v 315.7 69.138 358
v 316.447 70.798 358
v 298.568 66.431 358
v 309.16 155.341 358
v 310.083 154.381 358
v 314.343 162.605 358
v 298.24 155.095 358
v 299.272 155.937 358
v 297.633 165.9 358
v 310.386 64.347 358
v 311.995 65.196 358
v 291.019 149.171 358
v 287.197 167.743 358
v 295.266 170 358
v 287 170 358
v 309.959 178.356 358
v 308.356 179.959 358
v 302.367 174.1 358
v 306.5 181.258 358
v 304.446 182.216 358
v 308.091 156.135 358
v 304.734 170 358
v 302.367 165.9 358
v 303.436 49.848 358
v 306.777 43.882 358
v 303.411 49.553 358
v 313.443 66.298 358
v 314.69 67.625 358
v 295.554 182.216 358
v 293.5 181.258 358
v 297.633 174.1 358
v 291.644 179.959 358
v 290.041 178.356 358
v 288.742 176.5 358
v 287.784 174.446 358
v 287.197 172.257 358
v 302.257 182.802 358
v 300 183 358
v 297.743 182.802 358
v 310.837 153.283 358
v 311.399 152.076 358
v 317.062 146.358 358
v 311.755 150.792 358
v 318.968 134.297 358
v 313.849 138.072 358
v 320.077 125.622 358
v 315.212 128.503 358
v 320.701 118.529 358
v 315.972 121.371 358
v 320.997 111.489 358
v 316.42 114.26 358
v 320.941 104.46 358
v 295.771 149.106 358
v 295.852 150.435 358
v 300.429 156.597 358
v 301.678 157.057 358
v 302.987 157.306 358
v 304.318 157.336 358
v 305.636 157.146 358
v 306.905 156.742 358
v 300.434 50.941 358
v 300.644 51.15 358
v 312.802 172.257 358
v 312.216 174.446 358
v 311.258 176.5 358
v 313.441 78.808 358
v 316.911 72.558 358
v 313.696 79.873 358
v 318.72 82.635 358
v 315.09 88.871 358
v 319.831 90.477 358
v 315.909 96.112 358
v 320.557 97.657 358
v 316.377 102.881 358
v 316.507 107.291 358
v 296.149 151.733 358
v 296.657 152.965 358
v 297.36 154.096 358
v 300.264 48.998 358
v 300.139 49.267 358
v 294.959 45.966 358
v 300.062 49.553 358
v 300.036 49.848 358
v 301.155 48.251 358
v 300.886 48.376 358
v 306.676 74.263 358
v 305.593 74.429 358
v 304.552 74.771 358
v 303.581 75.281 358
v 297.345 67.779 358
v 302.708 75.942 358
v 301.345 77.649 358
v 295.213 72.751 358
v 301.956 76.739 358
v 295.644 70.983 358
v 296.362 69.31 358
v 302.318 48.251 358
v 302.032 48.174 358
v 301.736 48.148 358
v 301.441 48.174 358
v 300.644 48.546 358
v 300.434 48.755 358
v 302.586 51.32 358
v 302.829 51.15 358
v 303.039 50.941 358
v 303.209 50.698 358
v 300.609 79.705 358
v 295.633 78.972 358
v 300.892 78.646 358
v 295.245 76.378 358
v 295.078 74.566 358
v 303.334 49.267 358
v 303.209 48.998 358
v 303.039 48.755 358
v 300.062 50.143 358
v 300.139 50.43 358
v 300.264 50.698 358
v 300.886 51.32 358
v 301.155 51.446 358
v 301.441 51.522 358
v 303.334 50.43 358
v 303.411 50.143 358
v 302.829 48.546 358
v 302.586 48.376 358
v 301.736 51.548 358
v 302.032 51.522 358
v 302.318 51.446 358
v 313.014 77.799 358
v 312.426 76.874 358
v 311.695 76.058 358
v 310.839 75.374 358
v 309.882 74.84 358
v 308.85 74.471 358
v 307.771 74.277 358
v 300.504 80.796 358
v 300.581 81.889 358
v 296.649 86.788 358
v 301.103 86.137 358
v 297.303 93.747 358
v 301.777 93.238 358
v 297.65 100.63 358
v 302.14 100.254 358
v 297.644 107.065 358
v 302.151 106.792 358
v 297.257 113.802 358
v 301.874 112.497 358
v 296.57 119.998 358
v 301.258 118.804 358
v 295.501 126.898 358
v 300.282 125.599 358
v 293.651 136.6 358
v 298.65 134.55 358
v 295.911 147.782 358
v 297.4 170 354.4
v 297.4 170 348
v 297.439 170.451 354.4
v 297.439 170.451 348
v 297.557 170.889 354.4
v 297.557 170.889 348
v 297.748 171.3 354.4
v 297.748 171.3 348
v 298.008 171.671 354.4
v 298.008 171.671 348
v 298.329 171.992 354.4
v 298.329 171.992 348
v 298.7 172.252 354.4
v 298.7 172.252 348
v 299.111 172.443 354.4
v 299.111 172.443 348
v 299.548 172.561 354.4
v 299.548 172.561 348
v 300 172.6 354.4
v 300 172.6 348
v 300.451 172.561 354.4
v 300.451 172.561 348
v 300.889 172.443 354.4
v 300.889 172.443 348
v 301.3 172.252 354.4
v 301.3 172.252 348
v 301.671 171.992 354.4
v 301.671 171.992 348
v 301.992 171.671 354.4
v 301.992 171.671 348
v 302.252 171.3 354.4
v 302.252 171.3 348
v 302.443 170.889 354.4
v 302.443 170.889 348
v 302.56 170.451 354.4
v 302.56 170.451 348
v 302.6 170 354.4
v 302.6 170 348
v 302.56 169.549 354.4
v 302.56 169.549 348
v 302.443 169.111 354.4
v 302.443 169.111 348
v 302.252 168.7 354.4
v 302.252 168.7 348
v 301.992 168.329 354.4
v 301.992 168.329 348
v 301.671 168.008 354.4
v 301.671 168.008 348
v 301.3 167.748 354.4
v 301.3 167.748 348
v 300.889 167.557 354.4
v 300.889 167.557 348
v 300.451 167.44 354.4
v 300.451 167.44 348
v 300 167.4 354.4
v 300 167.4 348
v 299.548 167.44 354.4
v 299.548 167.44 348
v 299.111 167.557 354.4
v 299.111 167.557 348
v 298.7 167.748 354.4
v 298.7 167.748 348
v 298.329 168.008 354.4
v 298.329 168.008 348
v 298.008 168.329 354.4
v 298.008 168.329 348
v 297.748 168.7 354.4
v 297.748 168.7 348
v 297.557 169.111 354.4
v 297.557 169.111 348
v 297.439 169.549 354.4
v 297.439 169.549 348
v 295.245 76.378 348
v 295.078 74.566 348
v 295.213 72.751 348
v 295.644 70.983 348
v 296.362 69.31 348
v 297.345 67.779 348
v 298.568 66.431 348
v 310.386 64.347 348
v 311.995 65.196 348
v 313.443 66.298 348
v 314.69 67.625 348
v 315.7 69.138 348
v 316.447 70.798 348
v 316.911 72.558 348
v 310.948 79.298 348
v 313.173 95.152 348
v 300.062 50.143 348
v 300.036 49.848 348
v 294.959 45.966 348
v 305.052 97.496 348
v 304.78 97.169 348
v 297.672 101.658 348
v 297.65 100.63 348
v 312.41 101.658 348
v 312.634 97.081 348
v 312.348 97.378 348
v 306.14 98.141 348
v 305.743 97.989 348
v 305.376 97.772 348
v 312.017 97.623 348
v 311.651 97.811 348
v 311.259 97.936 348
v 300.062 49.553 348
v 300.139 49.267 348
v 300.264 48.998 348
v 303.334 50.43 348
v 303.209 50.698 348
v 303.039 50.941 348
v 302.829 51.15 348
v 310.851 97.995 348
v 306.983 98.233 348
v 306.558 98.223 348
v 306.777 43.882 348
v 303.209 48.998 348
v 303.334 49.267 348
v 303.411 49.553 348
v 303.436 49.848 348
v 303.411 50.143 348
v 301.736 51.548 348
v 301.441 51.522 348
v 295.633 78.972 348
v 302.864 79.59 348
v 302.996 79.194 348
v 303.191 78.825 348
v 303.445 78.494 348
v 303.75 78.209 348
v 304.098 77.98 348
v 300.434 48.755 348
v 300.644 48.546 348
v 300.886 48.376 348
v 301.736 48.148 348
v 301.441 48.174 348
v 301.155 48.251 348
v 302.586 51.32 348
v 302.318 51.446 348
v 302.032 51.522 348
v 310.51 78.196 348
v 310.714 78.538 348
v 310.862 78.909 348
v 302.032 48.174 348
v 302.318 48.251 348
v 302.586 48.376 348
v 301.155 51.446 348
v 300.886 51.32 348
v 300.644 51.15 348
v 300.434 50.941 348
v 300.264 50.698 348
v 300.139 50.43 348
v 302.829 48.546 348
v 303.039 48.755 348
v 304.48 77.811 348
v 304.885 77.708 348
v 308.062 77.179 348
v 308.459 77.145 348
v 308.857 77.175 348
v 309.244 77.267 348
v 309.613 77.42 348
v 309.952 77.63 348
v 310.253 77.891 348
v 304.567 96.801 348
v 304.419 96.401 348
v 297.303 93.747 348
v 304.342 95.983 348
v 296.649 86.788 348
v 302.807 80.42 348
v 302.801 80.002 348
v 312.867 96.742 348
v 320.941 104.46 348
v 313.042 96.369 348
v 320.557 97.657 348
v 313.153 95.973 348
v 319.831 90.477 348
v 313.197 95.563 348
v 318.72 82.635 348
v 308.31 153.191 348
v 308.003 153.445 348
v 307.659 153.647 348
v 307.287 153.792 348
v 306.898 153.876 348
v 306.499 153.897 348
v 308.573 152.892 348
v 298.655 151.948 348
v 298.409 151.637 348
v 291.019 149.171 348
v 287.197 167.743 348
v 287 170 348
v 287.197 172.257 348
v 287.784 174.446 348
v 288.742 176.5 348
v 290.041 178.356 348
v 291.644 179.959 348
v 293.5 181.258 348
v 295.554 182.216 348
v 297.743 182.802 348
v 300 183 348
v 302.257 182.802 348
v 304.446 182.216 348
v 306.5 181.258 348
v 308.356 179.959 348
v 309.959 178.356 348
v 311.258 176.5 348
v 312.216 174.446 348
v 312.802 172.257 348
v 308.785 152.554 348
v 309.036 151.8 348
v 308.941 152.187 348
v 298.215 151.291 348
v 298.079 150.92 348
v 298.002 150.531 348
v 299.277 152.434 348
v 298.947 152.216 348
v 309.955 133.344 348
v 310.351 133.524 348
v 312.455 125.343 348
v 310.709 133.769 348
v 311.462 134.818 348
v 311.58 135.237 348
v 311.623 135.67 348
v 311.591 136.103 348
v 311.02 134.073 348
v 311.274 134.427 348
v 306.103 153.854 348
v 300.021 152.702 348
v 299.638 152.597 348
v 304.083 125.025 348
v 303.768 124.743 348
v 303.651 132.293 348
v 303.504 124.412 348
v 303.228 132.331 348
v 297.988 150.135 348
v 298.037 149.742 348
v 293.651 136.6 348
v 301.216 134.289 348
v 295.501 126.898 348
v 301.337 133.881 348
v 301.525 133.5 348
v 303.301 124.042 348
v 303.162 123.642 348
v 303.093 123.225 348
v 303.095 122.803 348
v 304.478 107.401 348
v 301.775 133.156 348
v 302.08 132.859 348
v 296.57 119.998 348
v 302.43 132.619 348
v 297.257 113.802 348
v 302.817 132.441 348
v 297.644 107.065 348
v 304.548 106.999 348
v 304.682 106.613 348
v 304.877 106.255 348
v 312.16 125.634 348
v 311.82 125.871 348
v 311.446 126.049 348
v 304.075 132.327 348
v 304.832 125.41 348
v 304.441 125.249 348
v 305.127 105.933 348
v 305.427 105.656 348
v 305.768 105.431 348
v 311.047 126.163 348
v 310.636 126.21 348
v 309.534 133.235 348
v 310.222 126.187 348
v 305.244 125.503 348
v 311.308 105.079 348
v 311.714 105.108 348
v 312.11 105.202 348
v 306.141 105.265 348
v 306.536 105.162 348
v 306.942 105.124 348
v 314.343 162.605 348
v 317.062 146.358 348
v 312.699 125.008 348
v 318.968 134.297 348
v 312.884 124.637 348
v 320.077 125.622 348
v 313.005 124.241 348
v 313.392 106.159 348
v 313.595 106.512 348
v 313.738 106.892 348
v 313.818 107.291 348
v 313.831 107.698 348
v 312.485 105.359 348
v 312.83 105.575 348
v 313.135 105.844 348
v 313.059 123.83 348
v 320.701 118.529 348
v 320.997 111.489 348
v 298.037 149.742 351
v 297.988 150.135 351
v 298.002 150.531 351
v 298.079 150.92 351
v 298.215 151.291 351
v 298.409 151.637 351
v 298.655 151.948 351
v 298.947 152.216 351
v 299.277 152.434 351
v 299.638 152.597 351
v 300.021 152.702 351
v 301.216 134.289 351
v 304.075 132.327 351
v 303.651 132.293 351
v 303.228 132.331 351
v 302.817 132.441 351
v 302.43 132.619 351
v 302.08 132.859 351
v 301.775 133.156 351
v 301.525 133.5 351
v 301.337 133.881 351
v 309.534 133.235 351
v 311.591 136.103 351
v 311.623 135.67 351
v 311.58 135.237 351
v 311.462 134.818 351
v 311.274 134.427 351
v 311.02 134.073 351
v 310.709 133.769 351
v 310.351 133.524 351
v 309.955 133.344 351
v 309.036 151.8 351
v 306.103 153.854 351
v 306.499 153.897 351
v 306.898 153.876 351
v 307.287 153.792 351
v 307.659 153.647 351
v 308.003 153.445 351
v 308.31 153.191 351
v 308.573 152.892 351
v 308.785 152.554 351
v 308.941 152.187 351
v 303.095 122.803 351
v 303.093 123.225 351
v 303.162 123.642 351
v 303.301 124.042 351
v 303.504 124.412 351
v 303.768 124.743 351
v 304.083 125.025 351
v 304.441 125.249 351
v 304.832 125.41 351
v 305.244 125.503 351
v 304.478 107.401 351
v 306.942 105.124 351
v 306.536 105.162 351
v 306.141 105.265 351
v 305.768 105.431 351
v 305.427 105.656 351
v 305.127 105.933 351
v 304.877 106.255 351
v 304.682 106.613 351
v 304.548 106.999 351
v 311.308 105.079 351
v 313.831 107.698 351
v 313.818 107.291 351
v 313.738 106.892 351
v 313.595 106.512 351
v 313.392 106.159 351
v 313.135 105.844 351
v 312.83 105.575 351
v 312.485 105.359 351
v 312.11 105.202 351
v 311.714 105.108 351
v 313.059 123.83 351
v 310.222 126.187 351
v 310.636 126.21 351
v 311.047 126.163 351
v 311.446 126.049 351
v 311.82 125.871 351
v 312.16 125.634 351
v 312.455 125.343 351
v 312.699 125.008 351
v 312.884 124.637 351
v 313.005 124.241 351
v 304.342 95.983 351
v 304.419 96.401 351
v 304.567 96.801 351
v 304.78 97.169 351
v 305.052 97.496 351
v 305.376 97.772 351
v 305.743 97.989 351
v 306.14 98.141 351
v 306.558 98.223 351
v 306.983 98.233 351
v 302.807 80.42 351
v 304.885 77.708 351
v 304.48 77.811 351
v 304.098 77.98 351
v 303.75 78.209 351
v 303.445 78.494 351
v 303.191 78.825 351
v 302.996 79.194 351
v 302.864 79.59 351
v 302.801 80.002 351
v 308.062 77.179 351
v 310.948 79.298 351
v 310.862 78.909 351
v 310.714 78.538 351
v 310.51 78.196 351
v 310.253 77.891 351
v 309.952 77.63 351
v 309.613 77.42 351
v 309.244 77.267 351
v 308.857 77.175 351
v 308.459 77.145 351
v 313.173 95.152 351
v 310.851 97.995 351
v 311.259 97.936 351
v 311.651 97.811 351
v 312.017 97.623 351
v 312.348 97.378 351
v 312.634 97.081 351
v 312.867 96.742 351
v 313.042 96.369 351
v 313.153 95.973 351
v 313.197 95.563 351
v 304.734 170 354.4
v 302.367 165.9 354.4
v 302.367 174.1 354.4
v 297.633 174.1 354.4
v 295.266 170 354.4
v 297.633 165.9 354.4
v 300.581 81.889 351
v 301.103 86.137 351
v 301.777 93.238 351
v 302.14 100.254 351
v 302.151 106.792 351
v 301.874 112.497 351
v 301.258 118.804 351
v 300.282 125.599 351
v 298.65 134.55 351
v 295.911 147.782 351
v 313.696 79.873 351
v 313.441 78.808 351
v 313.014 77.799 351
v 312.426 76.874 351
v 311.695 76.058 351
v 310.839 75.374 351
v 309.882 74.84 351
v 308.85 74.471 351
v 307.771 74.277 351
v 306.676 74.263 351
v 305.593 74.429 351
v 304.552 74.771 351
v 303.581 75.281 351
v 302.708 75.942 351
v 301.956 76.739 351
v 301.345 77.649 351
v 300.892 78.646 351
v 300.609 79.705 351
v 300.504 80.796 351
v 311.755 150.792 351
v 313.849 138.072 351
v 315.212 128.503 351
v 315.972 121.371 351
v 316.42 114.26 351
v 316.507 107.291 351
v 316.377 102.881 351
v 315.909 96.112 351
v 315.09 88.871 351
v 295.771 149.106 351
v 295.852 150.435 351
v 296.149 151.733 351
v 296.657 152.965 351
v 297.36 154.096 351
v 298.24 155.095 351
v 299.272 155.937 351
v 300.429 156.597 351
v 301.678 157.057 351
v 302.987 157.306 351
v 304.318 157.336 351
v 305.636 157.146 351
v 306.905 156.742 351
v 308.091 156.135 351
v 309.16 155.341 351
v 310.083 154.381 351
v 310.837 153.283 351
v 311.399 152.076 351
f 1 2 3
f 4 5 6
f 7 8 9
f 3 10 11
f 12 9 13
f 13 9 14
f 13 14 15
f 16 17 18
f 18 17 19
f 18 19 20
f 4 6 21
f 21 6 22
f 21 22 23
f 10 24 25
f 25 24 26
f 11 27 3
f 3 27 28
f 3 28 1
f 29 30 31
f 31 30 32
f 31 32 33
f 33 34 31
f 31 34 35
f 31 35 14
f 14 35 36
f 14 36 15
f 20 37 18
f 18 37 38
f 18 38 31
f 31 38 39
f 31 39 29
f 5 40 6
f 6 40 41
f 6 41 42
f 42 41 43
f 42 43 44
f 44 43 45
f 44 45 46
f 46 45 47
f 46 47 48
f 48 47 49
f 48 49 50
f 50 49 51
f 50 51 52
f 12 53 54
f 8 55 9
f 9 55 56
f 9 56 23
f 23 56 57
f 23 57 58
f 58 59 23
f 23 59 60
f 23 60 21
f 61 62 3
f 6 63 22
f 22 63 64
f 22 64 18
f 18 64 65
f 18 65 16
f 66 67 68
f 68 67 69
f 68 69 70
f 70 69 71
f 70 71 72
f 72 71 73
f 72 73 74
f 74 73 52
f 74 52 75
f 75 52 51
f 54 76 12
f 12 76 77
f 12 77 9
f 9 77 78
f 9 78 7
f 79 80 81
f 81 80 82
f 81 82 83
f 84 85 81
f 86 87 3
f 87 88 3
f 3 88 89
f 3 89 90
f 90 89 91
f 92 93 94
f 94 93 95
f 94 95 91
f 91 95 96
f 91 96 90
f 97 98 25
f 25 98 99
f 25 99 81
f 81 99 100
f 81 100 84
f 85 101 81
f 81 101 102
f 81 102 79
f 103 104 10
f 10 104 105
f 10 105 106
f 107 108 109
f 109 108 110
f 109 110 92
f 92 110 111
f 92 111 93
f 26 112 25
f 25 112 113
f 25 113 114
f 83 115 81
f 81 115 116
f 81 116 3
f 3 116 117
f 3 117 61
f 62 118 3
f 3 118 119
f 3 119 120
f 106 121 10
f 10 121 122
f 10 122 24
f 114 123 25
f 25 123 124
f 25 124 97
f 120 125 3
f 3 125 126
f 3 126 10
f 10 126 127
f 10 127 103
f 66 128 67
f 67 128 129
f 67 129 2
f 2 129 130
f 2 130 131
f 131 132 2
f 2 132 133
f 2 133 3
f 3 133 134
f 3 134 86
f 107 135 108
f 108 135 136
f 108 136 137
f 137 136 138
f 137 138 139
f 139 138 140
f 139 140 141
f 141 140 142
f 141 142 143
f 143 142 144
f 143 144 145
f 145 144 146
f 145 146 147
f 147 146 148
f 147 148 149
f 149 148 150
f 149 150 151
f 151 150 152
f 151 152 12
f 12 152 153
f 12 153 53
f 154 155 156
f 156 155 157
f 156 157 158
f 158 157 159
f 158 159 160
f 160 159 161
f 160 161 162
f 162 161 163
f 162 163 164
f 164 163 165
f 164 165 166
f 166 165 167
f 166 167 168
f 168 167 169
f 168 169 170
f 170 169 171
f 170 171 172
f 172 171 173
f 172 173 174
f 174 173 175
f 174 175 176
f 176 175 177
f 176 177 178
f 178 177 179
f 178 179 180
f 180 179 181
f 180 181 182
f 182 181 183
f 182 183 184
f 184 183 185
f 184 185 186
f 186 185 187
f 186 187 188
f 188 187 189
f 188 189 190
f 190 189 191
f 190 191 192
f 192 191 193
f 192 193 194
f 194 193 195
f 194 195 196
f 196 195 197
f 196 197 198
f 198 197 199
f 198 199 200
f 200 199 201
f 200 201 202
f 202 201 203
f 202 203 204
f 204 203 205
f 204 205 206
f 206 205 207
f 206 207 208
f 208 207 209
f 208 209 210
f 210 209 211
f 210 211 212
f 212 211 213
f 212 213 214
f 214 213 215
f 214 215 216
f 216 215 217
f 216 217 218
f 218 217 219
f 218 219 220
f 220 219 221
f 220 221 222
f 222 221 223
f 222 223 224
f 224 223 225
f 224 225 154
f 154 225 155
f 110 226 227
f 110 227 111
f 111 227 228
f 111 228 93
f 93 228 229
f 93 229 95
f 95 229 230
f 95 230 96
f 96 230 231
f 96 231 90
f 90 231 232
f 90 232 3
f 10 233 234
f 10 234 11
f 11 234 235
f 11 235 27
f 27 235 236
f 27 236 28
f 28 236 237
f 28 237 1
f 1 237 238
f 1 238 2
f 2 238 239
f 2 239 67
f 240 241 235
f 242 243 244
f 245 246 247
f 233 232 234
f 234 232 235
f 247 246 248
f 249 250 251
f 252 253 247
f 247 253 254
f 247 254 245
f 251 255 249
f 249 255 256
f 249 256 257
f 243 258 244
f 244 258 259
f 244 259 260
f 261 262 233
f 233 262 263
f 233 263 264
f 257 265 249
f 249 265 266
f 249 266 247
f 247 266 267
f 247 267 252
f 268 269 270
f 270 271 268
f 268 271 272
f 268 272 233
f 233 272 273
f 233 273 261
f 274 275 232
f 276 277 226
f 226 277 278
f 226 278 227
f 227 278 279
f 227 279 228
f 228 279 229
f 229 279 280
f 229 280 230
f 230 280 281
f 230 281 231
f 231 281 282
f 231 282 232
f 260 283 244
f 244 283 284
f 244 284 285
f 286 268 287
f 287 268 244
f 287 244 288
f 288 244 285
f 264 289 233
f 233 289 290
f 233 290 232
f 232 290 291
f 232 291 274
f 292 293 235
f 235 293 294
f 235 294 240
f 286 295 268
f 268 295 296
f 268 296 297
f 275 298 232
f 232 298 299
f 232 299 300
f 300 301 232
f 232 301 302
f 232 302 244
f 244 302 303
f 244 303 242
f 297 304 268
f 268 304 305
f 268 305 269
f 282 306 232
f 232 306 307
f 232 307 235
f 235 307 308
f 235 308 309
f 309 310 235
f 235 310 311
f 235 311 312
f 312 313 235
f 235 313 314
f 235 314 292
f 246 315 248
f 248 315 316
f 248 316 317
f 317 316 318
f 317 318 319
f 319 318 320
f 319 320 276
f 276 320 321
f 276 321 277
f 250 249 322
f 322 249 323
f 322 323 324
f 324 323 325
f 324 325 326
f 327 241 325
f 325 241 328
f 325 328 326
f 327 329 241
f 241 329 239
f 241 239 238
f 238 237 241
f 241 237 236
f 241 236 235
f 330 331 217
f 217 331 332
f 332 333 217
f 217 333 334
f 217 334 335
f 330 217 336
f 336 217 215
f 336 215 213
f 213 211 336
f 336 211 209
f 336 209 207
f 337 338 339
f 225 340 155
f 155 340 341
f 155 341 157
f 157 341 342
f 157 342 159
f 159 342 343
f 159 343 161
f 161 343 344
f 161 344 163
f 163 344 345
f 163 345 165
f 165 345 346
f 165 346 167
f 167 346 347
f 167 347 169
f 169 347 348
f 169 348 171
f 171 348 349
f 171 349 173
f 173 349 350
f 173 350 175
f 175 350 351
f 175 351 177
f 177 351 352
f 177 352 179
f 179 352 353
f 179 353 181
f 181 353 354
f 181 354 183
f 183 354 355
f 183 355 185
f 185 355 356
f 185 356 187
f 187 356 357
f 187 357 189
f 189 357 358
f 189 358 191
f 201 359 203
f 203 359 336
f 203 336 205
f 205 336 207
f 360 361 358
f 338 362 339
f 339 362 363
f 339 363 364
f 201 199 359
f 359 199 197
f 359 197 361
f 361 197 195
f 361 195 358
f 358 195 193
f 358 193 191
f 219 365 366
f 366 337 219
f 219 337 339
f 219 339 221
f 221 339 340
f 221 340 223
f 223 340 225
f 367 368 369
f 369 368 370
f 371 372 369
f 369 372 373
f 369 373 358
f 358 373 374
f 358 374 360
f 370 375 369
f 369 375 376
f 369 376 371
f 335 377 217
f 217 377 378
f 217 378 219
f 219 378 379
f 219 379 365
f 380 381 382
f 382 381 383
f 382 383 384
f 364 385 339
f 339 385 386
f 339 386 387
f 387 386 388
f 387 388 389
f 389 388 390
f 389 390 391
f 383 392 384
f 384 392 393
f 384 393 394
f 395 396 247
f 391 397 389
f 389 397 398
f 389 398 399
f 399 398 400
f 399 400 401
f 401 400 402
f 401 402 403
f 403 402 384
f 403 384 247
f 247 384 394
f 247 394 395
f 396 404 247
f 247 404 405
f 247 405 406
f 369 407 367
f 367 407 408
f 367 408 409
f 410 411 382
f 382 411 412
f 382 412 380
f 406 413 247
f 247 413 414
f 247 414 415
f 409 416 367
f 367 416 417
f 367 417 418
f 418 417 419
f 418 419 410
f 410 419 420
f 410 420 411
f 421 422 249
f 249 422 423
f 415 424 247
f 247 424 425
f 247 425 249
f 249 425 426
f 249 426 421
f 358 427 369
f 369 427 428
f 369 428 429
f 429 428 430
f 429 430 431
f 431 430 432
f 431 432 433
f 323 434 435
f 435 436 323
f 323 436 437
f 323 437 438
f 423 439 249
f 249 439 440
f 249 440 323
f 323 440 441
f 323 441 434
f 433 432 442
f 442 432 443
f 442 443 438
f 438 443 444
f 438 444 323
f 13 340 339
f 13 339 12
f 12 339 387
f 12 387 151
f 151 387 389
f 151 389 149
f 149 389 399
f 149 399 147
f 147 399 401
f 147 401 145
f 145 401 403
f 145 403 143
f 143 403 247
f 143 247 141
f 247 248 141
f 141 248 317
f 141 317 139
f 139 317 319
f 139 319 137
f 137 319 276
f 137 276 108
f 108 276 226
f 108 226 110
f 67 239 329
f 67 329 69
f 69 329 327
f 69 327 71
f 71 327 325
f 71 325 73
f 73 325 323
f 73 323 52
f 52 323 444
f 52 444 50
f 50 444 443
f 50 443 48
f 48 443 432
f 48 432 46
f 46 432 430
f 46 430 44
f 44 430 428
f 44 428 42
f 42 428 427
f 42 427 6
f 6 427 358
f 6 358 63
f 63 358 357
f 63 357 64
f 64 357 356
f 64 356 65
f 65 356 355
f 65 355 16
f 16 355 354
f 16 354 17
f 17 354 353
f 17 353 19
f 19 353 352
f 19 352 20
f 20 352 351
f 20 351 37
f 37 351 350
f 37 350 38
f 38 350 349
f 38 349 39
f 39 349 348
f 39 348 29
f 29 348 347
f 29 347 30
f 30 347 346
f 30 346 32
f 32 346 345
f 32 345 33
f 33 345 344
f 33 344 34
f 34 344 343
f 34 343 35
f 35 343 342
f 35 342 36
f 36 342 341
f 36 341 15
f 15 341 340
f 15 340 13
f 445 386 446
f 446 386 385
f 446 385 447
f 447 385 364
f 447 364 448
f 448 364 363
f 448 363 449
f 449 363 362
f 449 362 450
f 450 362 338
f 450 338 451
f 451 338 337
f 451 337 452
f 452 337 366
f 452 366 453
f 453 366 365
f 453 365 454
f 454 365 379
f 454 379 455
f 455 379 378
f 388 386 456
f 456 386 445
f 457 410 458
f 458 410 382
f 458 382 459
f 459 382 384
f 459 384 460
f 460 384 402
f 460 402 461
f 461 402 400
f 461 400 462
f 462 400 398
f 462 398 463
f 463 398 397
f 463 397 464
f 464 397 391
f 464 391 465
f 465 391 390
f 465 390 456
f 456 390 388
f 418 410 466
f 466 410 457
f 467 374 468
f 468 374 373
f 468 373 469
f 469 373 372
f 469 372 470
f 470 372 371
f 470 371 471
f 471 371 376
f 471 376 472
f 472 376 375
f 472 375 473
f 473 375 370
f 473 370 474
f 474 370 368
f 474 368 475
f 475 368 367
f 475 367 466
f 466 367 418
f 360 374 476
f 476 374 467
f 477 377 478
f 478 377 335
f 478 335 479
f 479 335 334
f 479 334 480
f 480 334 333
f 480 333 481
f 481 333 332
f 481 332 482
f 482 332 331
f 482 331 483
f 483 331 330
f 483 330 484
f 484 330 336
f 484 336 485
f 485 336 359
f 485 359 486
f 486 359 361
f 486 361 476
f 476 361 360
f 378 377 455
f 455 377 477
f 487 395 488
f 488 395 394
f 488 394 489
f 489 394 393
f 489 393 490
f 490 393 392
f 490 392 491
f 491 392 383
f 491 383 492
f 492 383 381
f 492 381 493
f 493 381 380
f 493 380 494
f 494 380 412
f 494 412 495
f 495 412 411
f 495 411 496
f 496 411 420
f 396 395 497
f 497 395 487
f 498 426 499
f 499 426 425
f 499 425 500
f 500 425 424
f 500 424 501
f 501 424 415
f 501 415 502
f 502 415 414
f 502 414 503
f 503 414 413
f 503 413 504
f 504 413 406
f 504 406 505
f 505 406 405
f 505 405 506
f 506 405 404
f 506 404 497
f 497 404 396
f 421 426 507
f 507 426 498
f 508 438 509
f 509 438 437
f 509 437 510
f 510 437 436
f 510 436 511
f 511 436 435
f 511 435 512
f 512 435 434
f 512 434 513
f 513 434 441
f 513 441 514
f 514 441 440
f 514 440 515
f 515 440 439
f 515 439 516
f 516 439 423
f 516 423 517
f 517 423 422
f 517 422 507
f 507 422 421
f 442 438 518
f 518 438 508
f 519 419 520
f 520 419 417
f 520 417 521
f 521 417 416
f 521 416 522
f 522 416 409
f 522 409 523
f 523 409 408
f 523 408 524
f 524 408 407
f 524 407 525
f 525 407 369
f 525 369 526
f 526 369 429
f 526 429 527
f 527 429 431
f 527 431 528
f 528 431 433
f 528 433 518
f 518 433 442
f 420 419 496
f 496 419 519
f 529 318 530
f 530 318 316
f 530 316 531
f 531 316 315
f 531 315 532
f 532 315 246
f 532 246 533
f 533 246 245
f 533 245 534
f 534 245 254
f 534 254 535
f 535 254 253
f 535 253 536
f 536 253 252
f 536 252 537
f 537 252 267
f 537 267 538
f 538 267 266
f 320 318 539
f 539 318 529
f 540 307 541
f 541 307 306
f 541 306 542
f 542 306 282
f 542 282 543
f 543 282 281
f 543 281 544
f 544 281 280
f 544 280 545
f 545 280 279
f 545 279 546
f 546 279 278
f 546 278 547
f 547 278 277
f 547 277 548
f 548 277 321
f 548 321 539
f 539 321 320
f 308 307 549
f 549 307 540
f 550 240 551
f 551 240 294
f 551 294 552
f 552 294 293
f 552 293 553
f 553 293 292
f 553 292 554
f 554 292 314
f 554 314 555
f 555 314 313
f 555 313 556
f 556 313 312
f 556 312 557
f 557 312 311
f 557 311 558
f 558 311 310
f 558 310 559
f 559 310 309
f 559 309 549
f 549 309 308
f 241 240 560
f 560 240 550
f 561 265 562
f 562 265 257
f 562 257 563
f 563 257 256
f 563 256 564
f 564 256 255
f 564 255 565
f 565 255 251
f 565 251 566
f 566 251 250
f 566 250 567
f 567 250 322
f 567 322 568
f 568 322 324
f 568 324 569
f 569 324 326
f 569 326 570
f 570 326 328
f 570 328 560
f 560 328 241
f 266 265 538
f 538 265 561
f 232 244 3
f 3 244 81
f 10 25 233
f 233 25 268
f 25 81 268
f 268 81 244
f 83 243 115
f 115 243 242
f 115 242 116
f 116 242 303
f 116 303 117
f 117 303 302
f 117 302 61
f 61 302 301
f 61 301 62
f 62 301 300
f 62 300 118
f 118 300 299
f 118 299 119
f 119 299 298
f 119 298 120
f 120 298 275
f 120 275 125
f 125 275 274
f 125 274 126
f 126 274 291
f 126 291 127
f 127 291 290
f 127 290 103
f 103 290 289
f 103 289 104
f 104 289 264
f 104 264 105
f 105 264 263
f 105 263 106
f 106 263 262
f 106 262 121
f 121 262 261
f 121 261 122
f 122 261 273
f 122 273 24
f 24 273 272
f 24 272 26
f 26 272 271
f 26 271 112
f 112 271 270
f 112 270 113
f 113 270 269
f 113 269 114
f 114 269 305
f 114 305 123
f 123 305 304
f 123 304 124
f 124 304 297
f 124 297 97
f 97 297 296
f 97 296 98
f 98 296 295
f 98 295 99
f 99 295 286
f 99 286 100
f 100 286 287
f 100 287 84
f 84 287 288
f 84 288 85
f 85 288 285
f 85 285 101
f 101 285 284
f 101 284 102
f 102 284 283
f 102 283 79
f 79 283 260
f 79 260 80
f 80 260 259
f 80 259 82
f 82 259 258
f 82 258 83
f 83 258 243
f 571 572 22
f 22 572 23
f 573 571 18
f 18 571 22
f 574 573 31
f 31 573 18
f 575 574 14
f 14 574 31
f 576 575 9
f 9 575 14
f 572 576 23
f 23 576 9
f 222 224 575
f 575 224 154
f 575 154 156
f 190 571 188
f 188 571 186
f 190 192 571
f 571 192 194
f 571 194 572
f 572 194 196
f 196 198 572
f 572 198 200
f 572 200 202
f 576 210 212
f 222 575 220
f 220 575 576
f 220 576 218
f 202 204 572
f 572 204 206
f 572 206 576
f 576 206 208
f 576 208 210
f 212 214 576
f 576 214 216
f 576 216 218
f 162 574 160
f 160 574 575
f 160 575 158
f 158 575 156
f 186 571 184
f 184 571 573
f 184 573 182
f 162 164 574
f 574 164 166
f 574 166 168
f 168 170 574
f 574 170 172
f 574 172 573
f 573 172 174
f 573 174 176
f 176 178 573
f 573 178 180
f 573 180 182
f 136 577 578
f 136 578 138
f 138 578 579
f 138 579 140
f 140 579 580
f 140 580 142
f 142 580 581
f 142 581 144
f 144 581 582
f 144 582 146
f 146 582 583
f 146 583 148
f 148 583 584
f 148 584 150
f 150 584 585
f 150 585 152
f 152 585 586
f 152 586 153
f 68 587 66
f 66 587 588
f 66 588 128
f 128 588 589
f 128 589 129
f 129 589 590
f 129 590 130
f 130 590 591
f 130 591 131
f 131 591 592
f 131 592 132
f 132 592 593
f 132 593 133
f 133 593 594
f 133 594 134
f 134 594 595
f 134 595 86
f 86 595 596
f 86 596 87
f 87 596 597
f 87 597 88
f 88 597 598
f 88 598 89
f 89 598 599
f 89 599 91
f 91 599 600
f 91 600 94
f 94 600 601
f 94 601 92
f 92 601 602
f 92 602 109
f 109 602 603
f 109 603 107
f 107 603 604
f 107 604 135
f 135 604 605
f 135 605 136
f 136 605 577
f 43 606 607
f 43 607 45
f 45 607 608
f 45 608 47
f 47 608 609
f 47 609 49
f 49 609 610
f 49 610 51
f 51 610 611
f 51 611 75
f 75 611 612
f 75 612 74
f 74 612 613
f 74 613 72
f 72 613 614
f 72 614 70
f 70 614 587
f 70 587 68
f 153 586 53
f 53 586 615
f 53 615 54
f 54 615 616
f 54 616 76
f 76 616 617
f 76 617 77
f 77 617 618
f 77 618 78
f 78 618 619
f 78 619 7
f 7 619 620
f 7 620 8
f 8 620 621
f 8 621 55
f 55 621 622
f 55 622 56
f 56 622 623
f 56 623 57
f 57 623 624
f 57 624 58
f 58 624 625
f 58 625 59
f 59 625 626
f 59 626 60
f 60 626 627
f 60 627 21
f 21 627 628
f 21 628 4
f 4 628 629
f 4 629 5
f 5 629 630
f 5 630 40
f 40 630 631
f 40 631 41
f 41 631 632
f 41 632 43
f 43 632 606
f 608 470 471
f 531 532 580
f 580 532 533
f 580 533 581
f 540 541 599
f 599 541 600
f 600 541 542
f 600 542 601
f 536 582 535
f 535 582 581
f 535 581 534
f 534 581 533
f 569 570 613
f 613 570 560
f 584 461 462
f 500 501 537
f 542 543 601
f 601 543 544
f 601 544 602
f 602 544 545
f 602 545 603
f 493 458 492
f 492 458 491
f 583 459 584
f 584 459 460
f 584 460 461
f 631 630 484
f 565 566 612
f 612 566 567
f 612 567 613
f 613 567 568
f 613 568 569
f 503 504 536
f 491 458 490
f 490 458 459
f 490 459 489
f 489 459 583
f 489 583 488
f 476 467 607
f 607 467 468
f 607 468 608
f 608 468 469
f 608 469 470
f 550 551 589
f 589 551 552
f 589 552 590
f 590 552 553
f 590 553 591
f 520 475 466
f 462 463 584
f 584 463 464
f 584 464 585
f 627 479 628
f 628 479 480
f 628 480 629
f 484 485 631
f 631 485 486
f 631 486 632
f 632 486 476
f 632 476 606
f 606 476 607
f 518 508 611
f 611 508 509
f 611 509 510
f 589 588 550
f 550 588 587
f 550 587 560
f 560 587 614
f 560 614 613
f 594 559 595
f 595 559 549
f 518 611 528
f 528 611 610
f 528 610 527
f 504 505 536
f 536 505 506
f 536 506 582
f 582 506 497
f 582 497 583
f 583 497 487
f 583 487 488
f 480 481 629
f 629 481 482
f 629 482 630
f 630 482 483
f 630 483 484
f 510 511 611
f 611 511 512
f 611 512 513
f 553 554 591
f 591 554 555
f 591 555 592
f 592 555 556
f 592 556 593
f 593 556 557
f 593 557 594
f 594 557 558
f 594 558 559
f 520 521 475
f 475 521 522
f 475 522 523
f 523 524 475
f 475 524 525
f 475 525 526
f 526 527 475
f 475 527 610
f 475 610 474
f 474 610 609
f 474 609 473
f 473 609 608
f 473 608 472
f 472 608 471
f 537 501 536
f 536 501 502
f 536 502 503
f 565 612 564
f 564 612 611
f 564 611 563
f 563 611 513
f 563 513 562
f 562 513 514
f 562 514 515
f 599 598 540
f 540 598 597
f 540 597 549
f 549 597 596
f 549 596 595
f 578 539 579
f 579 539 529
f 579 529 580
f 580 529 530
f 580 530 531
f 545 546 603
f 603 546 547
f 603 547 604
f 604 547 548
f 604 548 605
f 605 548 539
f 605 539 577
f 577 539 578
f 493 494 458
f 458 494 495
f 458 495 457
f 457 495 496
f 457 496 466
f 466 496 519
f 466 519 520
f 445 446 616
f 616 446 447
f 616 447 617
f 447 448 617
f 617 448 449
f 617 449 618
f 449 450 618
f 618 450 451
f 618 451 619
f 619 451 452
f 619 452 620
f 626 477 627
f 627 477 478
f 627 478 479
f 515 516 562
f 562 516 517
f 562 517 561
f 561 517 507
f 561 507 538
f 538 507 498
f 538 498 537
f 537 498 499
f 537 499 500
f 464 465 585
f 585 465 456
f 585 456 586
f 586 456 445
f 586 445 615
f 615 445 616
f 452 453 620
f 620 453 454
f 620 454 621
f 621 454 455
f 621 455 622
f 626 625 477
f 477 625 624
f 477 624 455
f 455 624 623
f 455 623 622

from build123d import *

# Parameters (mm, degrees)
SKETCH1_R           = 2.6
BOSS_EXTRUDE1_DEPTH = 10
SKETCH2_R           = 1.7
BOSS_EXTRUDE2_DEPTH = 10
CUT_EXTRUDE1_DEPTH  = 3.61
CUT_EXTRUDE2_DEPTH  = 7.01


with BuildPart() as part:
    # Sketch1 → Boss-Extrude1 (new body)
    with BuildSketch(Plane.XY.offset(348)):
        with BuildLine():
            ThreePointArc((295.244800935, 76.37840131), (304.167556264, 63.635386072), (316.910571501, 72.558141401))
            add(Edge.make_bspline(
                [(316.910571501, 72.558141401), (317.993077182, 78.060080938), (319.436691833, 86.419493367), (320.644104939, 97.746663028), (321.086020795, 106.446056452), (320.974468629, 115.188631518), (320.331239752, 123.834659135), (319.294204188, 132.281931409), (318.037316746, 140.511779077), (316.695476199, 148.568110679), (314.90656957, 159.124453911), (313.612933772, 167.009808068), (312.802500789, 172.25742631)],
                knots=[0, 0, 0, 0, 0.167265195, 0.252809118, 0.339604775, 0.426899602, 0.513395067, 0.598049027, 0.680668932, 0.761679683, 0.84163696, 1, 1, 1, 1], degree=3))
            ThreePointArc((312.802500789, 172.25742631), (297.74257369, 182.802500789), (287.197499211, 167.74257369))
            add(Edge.make_bspline(
                [(287.197499211, 167.74257369), (288.245214147, 162.428752521), (289.885822364, 154.498518205), (292.118297352, 143.988320878), (293.742742512, 136.235372867), (295.2339085, 128.615976653), (296.473470386, 121.13730858), (297.336811691, 113.762401768), (297.738284398, 106.419106942), (297.668798337, 99.033764721), (297.014800417, 88.987730843), (296.022440082, 81.435185794), (295.244800935, 76.37840131)],
                knots=[0, 0, 0, 0, 0.175721332, 0.26273732, 0.348606728, 0.432722922, 0.514619289, 0.594500878, 0.673506544, 0.753057452, 0.833978021, 1, 1, 1, 1], degree=3))
        make_face()
        with Locations((300, 170)):
            Circle(SKETCH1_R, mode=Mode.SUBTRACT)
        with BuildLine():
            Line((298.037273547, 149.741721474), (301.215790437, 134.288941883))
            ThreePointArc((301.215790437, 134.288941883), (302.249879541, 132.731371076), (304.075121449, 132.326575973))
            Line((304.075121449, 132.326575973), (309.533784891, 133.235441013))
            ThreePointArc((309.533784891, 133.235441013), (311.154644108, 134.244376396), (311.590714405, 136.103133481))
            Line((311.590714405, 136.103133481), (309.035810829, 151.799472168))
            ThreePointArc((309.035810829, 151.799472168), (308.002694304, 153.44538336), (306.102883834, 153.854129723))
            Line((306.102883834, 153.854129723), (300.020607078, 152.701705588))
            ThreePointArc((300.020607078, 152.701705588), (298.409129896, 151.6370167), (298.037273547, 149.741721474))
        make_face(mode=Mode.SUBTRACT)
        with BuildLine():
            Line((303.095062376, 122.802641733), (304.478179716, 107.400584875))
            ThreePointArc((304.478179716, 107.400584875), (305.271665108, 105.787912405), (306.941989082, 105.124324138))
            Line((306.941989082, 105.124324138), (311.308057506, 105.078615953))
            ThreePointArc((311.308057506, 105.078615953), (313.134691512, 105.844024349), (313.831371675, 107.697960312))
            Line((313.831371675, 107.697960312), (313.059492575, 123.830124112))
            ThreePointArc((313.059492575, 123.830124112), (312.159795141, 125.633704646), (310.221794191, 126.187338583))
            Line((310.221794191, 126.187338583), (305.244487527, 125.502939826))
            ThreePointArc((305.244487527, 125.502939826), (303.629055674, 124.583200895), (303.095062376, 122.802641733))
        make_face(mode=Mode.SUBTRACT)
        with BuildLine():
            Line((304.341810749, 95.98294616), (302.807326902, 80.41966071))
            ThreePointArc((302.807326902, 80.41966071), (303.310735667, 78.653947907), (304.884570682, 77.708323546))
            Line((304.884570682, 77.708323546), (308.061893299, 77.17917356))
            ThreePointArc((308.061893299, 77.17917356), (309.951832836, 77.629811361), (310.948319998, 79.297731989))
            Line((310.948319998, 79.297731989), (313.173535223, 95.152129395))
            ThreePointArc((313.173535223, 95.152129395), (312.633934067, 97.081184589), (310.85135927, 97.994886096))
            Line((310.85135927, 97.994886096), (306.983305274, 98.232924126))
            ThreePointArc((306.983305274, 98.232924126), (305.208657773, 97.640818137), (304.341810749, 95.98294616))
        make_face(mode=Mode.SUBTRACT)
    extrude(amount=BOSS_EXTRUDE1_DEPTH)

    # Sketch2 → Boss-Extrude2 (add)
    with BuildSketch(Plane.XY.offset(348)):
        Polygon((294.95939437, 45.965927831), (306.777087406, 43.882149699), (311.465588203, 70.47195903), (299.647895167, 72.555737162), align=None)
        with Locations((301.736481777, 49.84807753)):
            Circle(SKETCH2_R, mode=Mode.SUBTRACT)
    extrude(amount=BOSS_EXTRUDE2_DEPTH)

    # Sketch3 → Cut-Extrude1 (cut)
    with BuildSketch(Plane.XY.offset(354.4)):
        Polygon((304.734272207, 170), (302.367136104, 174.1), (297.632863896, 174.1), (295.265727793, 170), (297.632863896, 165.9), (302.367136104, 165.9), align=None)
    extrude(amount=CUT_EXTRUDE1_DEPTH, mode=Mode.SUBTRACT)

    # Sketch4 → Cut-Extrude2 (cut)
    with BuildSketch(Plane.XY.offset(351)):
        with BuildLine():
            ThreePointArc((300.580931265, 81.888864063), (306.130868326, 74.323372231), (313.696360158, 79.873309293))
            add(Edge.make_bspline(
                [(313.696360158, 79.873309293), (314.375332718, 83.768049726), (315.269853801, 89.655581864), (316.076109947, 97.581166828), (316.452007736, 103.60449348), (316.564187736, 109.663923395), (316.399741723, 115.723723037), (315.97594992, 121.744253087), (315.33821911, 127.695568385), (314.545946492, 133.565929662), (313.36456358, 141.260072259), (312.394961182, 146.988748853), (311.75464163, 150.792263987)],
                knots=[0, 0, 0, 0, 0.166088556, 0.250039022, 0.33458405, 0.419536565, 0.504540949, 0.589152475, 0.673005298, 0.755933527, 0.837970837, 1, 1, 1, 1], degree=3))
            ThreePointArc((311.75464163, 150.792263987), (302.327575287, 157.208623235), (295.911216039, 147.781556891))
            add(Edge.make_bspline(
                [(295.911216039, 147.781556891), (296.697686325, 144.058532846), (297.878134482, 138.498789725), (299.330987648, 131.099349657), (300.305049322, 125.614550146), (301.11991691, 120.165560812), (301.730137241, 114.739277873), (302.103500244, 109.317606169), (302.228444831, 103.882909759), (302.114203921, 98.423103229), (301.672760974, 91.075496307), (301.065579784, 85.565175403), (300.580931265, 81.888864063)],
                knots=[0, 0, 0, 0, 0.171659874, 0.256391336, 0.340162967, 0.422938325, 0.504894902, 0.58642712, 0.668013916, 0.750042635, 0.832709798, 1, 1, 1, 1], degree=3))
        make_face()
    extrude(amount=CUT_EXTRUDE2_DEPTH, mode=Mode.SUBTRACT)


solid = part.part
